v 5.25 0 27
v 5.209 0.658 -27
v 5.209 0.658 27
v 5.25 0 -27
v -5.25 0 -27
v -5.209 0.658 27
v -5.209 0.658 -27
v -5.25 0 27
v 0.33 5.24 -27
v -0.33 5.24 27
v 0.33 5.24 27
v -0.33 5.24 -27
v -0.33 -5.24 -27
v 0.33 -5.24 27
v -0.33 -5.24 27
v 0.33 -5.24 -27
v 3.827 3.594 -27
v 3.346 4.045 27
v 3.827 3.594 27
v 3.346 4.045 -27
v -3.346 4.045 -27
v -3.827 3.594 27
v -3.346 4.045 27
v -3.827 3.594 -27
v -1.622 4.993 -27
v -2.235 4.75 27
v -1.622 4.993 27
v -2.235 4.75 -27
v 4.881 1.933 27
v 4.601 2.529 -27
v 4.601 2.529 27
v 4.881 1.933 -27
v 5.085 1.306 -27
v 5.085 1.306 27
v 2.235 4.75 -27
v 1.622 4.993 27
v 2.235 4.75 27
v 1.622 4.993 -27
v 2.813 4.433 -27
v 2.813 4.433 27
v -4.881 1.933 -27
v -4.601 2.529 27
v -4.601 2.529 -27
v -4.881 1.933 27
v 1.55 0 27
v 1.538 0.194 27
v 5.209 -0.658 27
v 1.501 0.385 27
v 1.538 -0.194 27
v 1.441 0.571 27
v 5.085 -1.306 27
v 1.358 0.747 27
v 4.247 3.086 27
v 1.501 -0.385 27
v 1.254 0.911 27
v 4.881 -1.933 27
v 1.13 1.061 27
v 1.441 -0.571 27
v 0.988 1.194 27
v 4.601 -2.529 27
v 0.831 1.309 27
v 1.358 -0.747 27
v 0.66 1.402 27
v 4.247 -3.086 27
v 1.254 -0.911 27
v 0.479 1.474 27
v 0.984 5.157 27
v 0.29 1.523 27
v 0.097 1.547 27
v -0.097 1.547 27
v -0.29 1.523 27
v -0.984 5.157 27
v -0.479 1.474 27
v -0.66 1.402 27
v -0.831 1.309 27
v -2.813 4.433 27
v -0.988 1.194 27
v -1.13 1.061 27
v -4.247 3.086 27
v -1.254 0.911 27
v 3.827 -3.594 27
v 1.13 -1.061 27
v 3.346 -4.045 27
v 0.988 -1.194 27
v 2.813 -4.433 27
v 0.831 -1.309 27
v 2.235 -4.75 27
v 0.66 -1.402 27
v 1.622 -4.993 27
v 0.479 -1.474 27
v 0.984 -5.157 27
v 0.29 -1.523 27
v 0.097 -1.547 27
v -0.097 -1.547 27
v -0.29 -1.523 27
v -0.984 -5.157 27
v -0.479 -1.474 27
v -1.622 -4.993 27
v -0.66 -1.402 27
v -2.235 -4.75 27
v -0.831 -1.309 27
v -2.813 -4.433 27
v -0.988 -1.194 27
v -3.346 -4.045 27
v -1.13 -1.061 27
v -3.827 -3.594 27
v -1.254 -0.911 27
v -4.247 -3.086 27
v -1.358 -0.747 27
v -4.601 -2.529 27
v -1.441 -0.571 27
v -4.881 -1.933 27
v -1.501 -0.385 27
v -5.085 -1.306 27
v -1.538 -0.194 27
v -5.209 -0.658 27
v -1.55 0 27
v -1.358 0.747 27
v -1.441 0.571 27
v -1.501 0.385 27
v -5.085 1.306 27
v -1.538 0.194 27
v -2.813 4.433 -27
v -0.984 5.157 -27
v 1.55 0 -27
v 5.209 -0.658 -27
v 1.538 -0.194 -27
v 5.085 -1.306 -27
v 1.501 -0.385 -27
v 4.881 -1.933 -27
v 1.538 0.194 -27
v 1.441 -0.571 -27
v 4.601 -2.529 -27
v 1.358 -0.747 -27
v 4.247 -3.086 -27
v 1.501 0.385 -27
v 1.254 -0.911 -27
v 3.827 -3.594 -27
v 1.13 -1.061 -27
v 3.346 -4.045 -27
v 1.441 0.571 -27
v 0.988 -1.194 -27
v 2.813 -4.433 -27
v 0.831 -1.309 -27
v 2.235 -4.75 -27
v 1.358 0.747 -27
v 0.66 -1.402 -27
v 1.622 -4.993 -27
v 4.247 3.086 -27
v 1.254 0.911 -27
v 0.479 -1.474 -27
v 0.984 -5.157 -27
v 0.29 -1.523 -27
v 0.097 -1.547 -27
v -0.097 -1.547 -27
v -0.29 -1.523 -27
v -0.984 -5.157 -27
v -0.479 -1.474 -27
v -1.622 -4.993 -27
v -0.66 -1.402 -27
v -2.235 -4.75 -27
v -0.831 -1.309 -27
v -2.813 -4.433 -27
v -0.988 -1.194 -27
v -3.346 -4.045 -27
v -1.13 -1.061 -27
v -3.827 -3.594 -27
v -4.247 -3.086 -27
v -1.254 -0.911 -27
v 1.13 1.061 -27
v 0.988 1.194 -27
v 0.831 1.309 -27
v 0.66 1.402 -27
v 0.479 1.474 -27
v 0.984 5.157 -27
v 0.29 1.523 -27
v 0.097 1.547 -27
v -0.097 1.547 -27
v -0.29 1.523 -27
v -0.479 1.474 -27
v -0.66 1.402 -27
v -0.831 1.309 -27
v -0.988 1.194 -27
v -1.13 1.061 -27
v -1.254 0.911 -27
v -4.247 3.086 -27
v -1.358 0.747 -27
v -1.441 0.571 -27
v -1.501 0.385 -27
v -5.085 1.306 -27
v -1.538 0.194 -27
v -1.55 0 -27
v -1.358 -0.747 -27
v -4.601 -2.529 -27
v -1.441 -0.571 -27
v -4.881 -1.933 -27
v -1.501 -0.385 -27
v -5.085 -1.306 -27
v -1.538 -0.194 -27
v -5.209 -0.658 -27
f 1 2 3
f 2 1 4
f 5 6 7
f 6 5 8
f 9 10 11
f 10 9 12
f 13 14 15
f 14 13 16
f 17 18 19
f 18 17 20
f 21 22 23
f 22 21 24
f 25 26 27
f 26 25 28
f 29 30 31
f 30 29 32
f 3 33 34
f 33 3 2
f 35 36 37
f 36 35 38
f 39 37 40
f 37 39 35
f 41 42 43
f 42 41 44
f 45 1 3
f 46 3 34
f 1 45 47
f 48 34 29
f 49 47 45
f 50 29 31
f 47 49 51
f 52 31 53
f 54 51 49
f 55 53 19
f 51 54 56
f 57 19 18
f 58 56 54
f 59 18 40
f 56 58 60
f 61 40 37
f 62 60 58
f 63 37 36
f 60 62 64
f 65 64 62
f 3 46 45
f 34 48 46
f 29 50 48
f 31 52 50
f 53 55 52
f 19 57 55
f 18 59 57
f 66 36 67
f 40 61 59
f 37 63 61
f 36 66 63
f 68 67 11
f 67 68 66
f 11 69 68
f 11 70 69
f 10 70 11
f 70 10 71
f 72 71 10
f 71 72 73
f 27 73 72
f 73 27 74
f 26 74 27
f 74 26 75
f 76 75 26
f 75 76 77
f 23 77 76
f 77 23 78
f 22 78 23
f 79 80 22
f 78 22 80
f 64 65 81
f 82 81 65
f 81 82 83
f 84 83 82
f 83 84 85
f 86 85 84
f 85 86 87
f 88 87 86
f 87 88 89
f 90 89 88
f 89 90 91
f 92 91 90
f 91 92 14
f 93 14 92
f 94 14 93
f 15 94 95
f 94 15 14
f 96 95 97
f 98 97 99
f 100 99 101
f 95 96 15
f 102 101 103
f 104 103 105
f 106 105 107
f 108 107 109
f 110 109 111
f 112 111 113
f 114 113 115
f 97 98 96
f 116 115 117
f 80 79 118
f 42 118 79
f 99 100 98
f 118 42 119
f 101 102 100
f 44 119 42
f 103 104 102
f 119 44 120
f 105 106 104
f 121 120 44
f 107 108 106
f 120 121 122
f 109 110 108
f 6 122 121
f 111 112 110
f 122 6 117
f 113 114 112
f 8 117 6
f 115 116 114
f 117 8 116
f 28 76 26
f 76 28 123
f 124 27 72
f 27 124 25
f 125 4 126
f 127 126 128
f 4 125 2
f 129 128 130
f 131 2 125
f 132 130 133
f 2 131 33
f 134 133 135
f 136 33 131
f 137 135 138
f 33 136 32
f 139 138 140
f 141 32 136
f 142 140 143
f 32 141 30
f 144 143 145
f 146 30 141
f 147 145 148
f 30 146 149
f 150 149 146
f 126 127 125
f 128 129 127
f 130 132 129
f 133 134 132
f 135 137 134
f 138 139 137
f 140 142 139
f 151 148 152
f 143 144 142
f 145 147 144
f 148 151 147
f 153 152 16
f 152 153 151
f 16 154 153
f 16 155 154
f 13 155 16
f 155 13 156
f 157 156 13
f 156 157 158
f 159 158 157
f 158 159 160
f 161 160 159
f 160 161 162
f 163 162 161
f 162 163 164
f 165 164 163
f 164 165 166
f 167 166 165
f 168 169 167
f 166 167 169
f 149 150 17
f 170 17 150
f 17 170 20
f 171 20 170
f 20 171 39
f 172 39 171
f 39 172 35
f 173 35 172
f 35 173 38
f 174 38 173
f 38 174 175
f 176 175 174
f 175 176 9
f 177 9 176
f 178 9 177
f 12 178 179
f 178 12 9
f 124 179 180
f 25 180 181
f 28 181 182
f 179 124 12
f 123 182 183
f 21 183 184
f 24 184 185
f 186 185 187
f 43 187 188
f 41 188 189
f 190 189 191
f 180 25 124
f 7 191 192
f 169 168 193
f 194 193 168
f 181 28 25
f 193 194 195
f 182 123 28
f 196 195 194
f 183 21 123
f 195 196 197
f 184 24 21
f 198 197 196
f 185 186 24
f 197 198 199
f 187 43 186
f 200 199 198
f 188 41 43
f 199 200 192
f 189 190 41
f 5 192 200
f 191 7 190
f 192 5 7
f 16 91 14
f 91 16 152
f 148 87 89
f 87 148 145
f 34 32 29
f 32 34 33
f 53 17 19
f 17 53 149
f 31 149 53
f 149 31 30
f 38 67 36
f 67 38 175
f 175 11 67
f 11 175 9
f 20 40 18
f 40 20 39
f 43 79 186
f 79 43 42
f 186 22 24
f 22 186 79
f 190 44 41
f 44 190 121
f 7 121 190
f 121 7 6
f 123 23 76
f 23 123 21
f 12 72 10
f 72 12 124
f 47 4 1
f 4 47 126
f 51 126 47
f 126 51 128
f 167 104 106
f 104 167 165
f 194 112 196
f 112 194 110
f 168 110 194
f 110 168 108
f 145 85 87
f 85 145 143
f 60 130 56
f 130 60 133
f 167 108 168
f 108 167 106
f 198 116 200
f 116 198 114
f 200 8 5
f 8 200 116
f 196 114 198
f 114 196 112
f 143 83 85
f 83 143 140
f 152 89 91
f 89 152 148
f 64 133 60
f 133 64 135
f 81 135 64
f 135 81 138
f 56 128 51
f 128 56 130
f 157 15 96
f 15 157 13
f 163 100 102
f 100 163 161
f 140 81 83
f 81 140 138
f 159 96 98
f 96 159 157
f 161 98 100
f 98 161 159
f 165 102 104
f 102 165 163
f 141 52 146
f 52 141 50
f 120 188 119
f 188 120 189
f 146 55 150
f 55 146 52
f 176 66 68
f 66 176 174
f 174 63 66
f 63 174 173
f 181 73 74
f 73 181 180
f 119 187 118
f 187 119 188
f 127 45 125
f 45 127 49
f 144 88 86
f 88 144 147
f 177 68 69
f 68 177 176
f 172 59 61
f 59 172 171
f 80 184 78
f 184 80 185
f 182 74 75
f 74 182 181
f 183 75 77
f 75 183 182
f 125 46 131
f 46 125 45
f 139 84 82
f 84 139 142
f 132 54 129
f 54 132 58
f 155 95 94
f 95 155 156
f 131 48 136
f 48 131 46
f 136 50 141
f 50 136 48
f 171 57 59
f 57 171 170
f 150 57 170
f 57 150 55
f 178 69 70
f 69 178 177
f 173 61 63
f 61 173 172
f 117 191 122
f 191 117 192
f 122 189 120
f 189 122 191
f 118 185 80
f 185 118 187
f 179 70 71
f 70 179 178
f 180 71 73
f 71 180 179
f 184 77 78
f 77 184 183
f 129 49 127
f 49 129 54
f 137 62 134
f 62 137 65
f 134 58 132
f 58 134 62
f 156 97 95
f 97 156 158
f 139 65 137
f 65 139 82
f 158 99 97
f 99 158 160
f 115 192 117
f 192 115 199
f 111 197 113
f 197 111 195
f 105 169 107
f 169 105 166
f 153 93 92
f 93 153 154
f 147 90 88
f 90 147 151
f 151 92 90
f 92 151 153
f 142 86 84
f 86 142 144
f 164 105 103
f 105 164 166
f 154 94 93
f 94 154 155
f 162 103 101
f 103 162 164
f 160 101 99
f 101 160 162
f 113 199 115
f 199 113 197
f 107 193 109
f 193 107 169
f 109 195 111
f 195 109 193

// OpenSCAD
$fn = 50;


difference() {
	union() {
		translate(v = [0, 0, -27.0000000000]) {
			cylinder(h = 54, r = 5.2500000000);
		}
	}
	union() {
		translate(v = [0, 0, -100.0000000000]) {
			cylinder(h = 200, r = 1.5500000000);
		}
	}
}
